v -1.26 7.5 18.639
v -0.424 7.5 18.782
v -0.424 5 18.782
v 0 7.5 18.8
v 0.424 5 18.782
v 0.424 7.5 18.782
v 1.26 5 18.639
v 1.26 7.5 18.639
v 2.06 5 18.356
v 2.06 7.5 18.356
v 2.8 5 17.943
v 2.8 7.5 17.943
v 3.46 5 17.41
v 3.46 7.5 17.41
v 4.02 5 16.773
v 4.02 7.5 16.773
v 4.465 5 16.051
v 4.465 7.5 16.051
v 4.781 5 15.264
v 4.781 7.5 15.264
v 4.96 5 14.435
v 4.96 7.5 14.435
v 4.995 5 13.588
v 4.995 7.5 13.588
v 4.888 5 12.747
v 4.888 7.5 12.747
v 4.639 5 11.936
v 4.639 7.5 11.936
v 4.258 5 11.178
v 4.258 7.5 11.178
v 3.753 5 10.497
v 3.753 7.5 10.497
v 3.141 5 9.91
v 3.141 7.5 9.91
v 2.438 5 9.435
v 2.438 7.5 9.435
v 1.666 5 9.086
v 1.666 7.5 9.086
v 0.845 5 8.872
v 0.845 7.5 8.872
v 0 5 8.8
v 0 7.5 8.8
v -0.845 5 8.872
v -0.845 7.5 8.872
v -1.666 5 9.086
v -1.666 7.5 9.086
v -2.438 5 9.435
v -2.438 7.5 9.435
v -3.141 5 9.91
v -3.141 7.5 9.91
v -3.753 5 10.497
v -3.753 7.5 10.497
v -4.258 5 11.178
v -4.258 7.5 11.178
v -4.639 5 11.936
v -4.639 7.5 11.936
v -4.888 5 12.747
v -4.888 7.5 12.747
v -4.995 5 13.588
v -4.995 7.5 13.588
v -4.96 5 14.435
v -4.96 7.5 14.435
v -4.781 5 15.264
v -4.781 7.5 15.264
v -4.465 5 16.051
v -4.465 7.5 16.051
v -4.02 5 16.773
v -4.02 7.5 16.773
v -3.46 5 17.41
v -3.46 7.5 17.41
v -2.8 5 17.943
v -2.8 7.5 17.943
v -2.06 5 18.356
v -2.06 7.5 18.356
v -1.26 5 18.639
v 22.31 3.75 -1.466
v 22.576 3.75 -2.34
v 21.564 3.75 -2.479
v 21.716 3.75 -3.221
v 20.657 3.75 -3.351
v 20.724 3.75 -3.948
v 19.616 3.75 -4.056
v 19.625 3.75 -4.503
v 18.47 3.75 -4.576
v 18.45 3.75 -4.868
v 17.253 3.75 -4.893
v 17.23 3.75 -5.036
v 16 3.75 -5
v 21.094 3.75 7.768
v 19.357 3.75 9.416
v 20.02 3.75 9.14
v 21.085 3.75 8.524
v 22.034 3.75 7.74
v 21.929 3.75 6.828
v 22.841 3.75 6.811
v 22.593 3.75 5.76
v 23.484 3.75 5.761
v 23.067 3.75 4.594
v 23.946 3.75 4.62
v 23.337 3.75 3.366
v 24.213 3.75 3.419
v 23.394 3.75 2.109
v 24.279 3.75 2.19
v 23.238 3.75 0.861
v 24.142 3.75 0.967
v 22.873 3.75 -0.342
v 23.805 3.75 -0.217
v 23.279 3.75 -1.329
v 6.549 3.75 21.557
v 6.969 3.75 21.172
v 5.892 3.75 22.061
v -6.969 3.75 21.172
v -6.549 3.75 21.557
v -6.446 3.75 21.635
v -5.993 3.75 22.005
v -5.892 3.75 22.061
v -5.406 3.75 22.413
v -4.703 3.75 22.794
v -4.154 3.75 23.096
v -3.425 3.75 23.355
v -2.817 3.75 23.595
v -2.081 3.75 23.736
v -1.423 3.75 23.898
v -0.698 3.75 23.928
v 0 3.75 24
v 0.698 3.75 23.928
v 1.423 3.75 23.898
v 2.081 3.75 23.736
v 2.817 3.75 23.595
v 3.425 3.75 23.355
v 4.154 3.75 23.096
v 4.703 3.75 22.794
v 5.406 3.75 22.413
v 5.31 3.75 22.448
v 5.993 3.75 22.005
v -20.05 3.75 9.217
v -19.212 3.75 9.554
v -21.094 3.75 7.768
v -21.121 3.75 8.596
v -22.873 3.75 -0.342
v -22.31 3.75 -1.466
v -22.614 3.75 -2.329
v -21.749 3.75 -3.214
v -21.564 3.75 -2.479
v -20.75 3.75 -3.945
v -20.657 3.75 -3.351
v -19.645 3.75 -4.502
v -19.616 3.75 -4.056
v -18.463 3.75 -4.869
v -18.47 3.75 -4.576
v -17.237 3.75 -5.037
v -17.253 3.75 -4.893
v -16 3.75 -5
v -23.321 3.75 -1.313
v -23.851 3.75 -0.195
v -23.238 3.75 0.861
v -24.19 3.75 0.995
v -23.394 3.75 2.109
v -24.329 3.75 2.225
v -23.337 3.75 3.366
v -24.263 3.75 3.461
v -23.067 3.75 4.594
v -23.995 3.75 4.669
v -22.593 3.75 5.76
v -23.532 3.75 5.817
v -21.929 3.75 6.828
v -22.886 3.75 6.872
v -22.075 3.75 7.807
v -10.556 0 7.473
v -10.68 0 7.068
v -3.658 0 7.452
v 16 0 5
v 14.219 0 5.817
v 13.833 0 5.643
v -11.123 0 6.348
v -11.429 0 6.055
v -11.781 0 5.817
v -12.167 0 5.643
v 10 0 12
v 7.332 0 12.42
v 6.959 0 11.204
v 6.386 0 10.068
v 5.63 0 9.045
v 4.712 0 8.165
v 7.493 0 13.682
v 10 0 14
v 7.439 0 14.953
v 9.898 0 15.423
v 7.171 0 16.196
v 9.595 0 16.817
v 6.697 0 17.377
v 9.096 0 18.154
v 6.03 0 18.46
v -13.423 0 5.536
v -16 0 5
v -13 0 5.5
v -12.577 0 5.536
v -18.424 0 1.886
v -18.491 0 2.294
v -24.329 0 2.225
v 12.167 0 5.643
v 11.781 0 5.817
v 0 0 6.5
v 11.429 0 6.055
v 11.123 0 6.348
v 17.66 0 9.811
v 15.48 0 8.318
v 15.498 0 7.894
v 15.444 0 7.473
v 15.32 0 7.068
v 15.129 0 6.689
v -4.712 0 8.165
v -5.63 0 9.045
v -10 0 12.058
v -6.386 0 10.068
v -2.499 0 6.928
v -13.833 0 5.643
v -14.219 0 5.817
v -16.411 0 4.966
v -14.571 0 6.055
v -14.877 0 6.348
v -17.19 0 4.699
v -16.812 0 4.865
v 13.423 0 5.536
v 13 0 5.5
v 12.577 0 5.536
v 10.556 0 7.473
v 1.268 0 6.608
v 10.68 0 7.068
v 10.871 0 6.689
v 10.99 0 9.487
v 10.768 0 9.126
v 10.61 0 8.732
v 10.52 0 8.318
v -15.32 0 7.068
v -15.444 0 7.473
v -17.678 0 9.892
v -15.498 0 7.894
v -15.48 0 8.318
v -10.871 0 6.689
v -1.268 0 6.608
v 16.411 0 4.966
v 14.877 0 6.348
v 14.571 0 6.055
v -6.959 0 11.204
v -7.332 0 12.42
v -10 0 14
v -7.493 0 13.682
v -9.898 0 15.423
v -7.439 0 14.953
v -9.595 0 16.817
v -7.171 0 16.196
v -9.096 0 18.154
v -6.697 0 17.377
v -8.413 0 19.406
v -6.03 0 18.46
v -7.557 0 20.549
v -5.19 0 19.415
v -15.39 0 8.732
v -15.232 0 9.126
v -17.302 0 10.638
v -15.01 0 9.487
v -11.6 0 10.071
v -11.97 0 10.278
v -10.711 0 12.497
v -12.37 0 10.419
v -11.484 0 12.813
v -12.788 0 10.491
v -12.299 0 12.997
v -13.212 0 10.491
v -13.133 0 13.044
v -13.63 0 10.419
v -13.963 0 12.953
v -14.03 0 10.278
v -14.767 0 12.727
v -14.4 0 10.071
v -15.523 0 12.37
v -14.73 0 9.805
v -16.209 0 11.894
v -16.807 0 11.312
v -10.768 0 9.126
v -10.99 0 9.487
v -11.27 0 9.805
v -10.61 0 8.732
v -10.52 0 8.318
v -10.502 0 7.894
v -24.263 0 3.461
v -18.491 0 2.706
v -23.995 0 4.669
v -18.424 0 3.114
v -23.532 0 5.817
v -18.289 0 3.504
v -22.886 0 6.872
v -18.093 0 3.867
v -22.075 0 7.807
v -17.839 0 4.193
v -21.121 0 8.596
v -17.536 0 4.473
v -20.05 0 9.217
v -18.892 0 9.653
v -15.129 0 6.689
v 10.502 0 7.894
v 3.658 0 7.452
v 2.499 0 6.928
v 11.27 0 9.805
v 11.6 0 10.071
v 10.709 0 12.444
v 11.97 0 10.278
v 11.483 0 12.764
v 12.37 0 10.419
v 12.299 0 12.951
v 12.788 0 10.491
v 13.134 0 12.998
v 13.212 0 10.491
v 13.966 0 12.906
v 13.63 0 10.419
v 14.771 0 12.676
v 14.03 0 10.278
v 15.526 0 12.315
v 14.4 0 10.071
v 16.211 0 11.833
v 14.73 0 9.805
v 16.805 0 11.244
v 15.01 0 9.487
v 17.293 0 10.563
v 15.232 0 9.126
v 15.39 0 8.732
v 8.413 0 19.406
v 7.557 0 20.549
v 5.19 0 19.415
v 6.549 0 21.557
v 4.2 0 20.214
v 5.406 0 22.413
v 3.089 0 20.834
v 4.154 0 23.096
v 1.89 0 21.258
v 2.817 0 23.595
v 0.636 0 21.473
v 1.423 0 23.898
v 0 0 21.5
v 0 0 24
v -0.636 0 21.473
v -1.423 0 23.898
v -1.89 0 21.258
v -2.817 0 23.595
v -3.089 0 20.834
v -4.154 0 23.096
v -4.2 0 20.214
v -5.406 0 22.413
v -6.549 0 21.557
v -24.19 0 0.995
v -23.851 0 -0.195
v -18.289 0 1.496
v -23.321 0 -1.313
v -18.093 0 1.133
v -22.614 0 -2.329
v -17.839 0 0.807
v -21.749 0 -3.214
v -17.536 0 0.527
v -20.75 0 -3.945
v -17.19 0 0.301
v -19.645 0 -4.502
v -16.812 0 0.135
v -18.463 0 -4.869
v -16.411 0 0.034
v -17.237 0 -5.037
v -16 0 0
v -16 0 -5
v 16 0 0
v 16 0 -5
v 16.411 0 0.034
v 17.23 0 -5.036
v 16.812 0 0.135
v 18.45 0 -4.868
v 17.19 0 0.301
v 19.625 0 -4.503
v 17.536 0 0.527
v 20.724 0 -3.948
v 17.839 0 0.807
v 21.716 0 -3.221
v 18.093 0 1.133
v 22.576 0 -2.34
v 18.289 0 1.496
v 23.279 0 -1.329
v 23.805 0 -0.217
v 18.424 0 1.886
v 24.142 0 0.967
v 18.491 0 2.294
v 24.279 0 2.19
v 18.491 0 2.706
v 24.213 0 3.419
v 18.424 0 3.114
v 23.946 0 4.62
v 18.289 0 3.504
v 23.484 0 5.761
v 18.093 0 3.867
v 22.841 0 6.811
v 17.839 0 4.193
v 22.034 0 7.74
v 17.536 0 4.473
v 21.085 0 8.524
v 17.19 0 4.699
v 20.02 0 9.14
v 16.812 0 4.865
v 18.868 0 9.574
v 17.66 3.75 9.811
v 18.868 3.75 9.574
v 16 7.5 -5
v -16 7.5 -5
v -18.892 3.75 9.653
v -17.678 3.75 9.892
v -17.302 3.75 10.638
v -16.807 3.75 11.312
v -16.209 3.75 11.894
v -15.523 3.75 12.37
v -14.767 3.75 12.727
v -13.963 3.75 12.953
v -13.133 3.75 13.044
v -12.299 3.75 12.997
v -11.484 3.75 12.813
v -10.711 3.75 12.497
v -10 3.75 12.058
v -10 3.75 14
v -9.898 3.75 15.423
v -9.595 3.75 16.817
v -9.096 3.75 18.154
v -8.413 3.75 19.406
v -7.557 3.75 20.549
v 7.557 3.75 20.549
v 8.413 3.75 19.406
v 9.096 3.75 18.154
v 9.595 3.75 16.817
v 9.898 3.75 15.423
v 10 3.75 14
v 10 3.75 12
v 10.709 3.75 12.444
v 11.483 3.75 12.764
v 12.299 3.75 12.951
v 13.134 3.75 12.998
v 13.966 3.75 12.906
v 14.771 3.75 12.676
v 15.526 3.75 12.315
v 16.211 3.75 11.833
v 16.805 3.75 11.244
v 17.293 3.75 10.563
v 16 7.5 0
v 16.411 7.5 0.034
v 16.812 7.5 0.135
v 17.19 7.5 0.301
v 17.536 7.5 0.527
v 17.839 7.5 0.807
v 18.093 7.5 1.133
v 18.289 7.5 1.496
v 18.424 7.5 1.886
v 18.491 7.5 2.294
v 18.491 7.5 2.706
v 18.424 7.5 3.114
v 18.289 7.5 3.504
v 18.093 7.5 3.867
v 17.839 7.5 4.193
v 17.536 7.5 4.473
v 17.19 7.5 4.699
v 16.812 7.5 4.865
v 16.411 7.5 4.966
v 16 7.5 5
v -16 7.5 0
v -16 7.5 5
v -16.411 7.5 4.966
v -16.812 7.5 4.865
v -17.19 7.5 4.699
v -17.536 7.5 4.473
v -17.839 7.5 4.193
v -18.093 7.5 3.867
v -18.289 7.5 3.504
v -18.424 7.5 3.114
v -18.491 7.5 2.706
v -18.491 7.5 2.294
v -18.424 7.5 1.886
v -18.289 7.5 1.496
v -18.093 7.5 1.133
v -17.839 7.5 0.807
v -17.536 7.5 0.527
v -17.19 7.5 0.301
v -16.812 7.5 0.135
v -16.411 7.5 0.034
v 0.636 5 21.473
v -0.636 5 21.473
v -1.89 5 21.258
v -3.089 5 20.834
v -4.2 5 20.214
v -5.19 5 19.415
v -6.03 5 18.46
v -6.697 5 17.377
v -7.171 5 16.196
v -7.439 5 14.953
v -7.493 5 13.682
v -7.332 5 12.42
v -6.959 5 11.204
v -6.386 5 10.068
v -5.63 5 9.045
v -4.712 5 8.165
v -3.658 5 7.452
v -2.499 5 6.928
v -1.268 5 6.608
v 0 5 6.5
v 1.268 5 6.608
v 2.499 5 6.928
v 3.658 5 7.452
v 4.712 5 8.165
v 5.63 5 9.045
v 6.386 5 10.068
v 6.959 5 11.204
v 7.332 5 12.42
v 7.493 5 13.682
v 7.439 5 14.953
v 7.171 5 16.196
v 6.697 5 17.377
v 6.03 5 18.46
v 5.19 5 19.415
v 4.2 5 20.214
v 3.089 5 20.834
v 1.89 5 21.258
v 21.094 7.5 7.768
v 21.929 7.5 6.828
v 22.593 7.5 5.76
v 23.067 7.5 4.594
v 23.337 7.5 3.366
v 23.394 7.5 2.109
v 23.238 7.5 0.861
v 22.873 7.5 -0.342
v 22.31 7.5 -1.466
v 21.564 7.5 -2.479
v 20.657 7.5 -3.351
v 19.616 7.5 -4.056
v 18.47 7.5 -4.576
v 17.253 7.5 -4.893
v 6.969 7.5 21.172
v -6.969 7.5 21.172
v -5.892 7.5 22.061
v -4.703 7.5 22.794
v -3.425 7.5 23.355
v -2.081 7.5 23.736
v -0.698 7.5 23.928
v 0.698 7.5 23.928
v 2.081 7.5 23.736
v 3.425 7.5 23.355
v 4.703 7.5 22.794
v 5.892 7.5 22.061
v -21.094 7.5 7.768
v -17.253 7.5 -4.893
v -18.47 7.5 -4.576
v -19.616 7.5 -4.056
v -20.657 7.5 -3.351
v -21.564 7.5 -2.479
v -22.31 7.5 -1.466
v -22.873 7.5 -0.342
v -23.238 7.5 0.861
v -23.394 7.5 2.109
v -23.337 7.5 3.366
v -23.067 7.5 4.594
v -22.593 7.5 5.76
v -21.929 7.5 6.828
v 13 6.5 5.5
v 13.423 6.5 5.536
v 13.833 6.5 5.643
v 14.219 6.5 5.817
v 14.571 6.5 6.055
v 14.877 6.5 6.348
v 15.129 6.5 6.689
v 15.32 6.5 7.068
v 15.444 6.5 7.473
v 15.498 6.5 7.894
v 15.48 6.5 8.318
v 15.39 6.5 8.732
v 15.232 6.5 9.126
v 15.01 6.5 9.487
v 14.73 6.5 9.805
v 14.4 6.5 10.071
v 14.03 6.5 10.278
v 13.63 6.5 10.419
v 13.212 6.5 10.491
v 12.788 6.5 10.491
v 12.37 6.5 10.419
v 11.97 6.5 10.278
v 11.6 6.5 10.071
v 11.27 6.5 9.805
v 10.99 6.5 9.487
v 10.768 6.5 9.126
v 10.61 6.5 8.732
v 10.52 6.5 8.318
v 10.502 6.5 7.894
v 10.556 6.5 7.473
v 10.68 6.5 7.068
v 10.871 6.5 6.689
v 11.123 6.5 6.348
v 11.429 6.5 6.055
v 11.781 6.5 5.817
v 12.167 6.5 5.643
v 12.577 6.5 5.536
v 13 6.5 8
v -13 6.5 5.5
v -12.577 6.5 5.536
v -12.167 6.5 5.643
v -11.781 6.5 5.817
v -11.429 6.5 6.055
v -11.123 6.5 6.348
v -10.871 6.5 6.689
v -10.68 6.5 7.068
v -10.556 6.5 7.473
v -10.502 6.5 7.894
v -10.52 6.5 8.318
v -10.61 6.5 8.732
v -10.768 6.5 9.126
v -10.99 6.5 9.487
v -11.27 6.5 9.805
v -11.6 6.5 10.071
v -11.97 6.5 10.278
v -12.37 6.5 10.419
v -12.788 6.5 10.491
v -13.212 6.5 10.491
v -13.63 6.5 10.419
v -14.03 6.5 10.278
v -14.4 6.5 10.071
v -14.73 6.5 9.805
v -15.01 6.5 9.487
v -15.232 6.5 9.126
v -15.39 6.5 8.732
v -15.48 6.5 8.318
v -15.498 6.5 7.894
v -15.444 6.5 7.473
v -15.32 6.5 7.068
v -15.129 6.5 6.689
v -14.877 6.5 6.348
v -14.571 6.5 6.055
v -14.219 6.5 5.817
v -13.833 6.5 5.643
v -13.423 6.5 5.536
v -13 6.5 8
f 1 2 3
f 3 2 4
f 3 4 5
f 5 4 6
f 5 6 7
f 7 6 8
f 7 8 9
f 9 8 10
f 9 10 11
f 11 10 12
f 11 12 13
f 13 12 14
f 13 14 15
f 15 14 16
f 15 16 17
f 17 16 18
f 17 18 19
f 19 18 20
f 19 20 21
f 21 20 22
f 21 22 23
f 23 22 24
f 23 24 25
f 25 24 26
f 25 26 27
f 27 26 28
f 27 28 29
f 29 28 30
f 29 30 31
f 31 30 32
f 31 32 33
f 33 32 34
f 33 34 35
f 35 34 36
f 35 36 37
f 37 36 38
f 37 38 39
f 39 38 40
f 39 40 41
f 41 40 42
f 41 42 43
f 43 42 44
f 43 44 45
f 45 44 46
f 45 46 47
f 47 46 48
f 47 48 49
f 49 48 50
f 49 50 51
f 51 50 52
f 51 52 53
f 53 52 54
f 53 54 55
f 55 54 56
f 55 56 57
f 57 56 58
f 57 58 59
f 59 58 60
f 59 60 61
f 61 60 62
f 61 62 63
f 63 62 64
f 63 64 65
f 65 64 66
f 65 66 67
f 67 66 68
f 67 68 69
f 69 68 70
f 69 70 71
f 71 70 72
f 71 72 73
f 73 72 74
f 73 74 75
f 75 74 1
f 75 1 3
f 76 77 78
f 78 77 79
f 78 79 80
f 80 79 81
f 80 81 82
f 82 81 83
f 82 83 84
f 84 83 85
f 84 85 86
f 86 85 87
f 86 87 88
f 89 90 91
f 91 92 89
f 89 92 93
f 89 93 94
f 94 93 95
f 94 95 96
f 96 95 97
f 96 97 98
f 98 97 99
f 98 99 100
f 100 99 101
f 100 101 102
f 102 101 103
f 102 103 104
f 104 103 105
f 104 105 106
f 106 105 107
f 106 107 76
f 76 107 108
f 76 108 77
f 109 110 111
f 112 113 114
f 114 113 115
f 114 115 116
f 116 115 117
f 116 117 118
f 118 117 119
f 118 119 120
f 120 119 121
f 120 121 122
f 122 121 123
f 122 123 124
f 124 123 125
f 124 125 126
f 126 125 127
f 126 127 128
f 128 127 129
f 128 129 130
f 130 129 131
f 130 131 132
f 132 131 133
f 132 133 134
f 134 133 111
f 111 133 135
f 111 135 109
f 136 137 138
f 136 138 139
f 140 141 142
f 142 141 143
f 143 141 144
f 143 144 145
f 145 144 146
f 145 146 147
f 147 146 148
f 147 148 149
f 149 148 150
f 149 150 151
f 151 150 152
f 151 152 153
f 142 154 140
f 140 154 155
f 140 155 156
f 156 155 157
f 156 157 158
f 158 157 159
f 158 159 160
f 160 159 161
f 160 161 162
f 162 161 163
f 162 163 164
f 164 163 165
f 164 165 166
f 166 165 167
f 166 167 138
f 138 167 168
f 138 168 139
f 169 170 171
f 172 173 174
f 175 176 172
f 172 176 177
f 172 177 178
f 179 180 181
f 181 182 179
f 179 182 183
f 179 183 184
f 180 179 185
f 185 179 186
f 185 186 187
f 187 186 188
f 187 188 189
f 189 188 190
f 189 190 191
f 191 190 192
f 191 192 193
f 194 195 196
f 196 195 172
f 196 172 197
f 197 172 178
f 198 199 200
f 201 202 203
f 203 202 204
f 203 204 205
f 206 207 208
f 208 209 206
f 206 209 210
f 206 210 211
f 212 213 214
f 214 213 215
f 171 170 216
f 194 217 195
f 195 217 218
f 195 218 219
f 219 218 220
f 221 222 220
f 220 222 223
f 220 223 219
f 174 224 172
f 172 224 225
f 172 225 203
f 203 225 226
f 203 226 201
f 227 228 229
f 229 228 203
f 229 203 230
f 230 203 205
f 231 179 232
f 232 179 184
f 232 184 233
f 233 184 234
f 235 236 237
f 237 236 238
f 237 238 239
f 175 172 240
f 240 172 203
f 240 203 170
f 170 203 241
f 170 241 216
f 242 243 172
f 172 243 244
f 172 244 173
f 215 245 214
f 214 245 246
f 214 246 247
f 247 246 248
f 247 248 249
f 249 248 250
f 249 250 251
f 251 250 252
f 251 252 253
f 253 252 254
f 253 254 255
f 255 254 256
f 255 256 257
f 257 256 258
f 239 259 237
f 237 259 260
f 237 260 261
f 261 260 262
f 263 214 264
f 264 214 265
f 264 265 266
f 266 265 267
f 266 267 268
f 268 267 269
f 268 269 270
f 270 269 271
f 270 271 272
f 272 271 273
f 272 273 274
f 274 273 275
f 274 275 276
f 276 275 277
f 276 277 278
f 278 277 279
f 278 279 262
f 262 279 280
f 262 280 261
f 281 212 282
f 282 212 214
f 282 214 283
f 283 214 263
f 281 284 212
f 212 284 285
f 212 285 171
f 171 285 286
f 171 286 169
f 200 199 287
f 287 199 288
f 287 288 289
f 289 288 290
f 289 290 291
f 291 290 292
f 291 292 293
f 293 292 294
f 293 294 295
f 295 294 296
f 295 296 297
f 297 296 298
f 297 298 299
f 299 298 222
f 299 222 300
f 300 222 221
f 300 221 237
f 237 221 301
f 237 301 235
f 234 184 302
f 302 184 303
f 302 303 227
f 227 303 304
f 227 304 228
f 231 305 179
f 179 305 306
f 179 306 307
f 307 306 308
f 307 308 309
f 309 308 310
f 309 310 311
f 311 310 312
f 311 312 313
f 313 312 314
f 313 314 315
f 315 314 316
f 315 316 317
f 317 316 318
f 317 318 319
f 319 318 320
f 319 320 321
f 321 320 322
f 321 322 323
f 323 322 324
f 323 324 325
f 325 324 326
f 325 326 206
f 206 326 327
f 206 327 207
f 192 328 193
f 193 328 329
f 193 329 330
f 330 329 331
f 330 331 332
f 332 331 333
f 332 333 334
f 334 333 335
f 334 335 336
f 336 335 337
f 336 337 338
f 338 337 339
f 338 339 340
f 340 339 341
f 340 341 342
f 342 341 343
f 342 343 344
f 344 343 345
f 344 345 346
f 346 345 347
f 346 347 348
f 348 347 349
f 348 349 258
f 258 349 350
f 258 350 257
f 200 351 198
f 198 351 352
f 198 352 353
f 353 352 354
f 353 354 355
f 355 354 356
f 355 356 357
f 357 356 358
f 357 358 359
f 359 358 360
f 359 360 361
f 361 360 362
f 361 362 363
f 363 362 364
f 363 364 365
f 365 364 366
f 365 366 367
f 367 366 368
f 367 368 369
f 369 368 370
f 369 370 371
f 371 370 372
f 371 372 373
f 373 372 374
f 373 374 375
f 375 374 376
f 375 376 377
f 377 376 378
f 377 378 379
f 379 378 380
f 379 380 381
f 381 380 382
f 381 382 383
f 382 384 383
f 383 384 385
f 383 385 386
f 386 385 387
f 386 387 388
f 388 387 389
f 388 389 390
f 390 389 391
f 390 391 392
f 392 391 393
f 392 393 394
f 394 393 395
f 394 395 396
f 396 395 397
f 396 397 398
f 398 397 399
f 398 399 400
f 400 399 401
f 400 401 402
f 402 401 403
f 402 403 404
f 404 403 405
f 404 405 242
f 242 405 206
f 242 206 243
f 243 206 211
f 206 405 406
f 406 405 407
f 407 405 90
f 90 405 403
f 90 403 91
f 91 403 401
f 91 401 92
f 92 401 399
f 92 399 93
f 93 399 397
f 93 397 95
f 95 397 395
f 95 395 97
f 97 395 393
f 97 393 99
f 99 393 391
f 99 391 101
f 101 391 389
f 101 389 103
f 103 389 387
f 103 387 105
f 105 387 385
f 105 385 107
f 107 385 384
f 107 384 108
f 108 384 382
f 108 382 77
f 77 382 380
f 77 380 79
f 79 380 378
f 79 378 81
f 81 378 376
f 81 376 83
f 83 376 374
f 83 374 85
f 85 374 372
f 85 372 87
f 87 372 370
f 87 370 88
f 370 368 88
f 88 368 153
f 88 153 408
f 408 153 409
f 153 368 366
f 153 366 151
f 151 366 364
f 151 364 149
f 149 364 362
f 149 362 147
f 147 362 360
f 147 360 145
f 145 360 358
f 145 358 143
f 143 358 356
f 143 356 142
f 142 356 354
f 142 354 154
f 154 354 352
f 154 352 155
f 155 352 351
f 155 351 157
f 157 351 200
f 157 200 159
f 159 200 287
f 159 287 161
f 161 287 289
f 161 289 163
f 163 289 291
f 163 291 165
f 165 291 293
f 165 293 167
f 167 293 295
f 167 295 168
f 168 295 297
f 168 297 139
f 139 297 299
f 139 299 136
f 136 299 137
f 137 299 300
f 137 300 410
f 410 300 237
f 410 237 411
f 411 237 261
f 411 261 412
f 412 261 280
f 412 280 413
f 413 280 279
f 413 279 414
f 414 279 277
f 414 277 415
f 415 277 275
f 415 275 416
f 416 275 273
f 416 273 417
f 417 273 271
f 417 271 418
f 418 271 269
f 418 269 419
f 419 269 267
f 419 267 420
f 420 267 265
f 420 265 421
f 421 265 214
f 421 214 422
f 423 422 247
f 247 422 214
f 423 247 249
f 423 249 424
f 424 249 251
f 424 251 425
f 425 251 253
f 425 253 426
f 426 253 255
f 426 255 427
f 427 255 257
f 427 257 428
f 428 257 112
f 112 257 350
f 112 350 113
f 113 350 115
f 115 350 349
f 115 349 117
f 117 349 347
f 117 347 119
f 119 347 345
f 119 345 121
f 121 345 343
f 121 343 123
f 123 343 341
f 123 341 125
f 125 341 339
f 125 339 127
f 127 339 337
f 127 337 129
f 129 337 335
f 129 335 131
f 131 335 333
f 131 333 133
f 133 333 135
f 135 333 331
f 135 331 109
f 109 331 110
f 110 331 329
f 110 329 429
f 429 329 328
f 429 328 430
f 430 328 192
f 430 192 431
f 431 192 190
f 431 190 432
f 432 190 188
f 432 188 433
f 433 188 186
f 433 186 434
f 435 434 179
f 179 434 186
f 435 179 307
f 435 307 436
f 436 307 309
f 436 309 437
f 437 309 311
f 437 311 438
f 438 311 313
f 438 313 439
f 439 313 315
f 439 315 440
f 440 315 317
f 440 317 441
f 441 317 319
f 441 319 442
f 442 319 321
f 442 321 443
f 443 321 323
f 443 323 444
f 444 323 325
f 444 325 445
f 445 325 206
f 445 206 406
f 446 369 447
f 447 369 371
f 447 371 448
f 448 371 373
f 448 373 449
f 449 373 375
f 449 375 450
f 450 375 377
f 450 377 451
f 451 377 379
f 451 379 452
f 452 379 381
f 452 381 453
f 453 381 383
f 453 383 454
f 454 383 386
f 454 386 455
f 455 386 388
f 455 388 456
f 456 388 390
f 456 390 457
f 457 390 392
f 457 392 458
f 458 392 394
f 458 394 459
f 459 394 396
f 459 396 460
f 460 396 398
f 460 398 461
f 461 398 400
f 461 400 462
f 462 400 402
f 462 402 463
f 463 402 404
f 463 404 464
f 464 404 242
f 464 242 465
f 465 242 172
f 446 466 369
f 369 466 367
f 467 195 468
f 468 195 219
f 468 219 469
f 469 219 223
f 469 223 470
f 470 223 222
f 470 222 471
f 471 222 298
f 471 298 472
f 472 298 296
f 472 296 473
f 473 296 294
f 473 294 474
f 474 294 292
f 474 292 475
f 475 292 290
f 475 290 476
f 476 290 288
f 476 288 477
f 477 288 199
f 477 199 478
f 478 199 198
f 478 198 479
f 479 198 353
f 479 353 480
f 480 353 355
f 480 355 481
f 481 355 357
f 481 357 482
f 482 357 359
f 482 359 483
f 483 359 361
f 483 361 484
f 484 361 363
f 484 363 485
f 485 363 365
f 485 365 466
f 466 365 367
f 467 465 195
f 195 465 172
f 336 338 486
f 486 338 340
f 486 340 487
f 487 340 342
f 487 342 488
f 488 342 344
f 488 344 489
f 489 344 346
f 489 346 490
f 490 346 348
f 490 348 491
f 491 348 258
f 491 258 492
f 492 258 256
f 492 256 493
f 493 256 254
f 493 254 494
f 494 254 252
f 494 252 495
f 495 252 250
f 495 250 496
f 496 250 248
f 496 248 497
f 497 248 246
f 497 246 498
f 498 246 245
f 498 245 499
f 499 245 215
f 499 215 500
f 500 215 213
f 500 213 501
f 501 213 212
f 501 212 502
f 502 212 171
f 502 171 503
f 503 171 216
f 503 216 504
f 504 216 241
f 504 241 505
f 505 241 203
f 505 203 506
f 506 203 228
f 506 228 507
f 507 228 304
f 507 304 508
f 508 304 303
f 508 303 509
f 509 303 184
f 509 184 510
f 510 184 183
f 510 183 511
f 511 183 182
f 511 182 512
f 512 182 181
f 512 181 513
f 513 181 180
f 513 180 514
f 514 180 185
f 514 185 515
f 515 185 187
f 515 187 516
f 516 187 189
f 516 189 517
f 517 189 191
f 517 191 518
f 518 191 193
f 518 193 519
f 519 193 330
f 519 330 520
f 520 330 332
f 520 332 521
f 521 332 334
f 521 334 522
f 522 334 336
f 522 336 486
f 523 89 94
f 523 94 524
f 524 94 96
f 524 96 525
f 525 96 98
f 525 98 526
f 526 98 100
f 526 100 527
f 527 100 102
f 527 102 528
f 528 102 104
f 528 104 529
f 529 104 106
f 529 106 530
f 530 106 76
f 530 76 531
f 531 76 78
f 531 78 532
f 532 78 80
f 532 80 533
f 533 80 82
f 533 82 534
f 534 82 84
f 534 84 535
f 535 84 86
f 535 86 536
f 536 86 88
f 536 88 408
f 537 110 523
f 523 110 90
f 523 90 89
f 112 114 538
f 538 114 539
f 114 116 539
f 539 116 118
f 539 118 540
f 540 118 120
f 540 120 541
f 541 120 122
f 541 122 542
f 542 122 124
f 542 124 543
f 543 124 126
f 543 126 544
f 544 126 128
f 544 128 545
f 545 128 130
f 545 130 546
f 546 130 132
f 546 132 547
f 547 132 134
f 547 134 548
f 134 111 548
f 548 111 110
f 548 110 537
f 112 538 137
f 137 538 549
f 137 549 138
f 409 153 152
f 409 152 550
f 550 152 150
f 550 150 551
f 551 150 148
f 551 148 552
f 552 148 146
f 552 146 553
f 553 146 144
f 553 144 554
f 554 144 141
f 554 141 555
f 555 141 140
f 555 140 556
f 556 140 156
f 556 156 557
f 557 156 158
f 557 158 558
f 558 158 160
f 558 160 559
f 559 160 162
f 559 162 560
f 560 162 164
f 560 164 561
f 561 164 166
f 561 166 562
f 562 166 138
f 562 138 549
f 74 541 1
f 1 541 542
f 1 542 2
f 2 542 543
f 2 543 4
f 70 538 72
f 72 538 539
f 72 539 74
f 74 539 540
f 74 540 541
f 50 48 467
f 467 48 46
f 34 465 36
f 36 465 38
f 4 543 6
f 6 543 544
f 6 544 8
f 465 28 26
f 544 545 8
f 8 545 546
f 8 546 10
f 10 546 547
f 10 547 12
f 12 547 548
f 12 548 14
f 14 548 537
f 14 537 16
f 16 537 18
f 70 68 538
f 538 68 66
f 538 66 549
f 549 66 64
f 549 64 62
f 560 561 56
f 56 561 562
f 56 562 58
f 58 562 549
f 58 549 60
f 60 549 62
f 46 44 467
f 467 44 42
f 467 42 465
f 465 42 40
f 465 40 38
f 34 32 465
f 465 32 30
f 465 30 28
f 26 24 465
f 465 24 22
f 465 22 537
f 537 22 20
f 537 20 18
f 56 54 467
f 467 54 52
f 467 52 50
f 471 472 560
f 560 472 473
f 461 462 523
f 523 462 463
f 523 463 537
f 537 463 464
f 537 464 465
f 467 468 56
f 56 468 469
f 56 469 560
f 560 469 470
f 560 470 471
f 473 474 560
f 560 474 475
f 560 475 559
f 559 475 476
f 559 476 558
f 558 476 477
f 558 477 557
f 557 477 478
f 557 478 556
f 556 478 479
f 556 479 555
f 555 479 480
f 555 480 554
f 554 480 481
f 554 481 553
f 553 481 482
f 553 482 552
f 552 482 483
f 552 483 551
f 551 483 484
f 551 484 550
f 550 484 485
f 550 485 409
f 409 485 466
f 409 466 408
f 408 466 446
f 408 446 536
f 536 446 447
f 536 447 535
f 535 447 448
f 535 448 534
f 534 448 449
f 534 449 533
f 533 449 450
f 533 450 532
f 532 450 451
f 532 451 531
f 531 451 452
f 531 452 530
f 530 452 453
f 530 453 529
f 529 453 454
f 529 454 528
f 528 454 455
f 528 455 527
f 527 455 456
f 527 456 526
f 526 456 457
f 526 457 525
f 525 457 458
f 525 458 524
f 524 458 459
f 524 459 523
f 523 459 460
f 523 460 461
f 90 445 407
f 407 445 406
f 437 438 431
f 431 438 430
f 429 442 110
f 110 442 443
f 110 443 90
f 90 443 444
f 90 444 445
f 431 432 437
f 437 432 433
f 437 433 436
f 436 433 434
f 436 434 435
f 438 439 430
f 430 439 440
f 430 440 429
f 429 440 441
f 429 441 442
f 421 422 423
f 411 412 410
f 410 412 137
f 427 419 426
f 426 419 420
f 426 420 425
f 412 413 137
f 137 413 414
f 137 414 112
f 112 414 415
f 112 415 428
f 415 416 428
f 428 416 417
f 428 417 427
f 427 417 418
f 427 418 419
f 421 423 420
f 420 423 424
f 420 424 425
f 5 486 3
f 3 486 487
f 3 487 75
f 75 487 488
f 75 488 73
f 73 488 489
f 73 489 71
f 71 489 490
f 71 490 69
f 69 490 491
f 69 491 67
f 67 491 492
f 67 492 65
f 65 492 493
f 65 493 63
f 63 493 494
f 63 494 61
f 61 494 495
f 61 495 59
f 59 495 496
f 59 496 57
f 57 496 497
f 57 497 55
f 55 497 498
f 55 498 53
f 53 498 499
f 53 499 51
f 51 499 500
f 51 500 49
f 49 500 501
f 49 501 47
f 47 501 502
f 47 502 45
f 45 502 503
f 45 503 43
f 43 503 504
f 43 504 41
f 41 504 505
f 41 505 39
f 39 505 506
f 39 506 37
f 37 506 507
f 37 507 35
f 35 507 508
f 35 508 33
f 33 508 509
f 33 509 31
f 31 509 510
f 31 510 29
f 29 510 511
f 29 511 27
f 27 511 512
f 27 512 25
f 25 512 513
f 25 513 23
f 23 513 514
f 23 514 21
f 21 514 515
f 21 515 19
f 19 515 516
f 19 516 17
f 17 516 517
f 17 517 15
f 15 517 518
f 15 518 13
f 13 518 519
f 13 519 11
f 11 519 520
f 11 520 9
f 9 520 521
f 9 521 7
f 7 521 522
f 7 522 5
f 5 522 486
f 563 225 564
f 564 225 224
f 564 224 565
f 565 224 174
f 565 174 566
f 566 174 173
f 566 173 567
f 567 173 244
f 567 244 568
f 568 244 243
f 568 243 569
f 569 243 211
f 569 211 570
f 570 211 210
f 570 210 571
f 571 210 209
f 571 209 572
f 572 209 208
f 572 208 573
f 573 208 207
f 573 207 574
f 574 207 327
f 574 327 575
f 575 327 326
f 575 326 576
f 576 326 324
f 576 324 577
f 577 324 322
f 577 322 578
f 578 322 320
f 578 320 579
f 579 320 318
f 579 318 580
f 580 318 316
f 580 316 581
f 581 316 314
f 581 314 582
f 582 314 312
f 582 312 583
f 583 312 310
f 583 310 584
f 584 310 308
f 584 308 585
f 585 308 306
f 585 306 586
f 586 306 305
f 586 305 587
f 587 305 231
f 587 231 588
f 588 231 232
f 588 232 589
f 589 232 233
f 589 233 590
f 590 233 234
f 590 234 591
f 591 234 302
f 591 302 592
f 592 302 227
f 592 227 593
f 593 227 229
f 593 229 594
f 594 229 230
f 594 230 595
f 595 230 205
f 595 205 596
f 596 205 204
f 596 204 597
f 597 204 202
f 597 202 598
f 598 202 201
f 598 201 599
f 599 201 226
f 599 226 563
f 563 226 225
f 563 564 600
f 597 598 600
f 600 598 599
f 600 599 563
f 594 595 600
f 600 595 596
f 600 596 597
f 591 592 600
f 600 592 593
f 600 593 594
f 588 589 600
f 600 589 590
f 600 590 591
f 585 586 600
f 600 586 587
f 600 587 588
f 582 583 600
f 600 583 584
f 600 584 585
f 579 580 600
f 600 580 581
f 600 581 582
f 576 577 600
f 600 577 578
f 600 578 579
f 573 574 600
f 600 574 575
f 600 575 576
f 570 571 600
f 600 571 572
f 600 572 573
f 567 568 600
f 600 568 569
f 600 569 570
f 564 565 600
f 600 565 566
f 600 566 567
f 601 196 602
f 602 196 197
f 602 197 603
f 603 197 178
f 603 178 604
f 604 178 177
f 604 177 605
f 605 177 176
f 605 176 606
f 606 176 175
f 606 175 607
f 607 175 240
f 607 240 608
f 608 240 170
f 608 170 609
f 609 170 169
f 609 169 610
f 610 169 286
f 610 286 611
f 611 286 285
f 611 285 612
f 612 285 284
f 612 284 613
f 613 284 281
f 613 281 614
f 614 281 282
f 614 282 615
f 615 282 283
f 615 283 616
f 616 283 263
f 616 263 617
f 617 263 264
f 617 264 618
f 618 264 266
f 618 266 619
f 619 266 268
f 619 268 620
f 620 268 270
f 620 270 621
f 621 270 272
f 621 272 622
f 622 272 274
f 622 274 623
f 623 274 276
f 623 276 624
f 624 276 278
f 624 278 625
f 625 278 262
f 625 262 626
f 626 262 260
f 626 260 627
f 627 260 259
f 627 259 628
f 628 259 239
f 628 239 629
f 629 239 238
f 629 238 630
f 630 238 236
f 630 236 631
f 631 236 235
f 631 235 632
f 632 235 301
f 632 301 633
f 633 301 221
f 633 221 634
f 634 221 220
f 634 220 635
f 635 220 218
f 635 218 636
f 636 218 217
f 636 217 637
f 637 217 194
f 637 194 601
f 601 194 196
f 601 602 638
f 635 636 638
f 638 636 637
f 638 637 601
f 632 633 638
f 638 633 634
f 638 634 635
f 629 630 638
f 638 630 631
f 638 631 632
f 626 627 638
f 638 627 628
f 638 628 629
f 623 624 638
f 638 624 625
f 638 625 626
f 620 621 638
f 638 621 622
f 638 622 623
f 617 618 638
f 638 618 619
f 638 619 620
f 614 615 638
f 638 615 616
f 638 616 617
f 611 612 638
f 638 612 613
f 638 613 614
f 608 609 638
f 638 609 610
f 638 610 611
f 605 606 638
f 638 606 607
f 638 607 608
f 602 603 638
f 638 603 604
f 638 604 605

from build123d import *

# Parameters (mm, degrees)
SZKIC2_R                    = 7.5
SZKIC2_R_2                  = 2.4
DODANIE_WYCI_GNI_CIE1_DEPTH = 3.75
SZKIC3_R                    = 5
DODANIE_WYCI_GNI_CIE2_DEPTH = 3.75
SZKIC9_R                    = 7.5
WYTNIJ_WYCI_GNI_CIE3_DEPTH  = 5
SZKIC10_R                   = 2.5
WYTNIJ_WYCI_GNI_CIE4_DEPTH  = 6.5


with BuildPart() as part:
    # Szkic2 → Dodanie-wyciągnięcie1 (new body)
    with BuildSketch(Plane(origin=(0, 0, 0), x_dir=(1, 0, 0), z_dir=(0, 1, 0))):
        with BuildLine():
            Line((-16, 5), (16, 5))
            ThreePointArc((16, 5), (24.235849057, -1.575471698), (17.660377358, -9.811320755))
            ThreePointArc((17.660377358, -9.811320755), (14.373605639, -12.807619738), (10, -12))
            Line((10, -12), (10, -14))
            ThreePointArc((10, -14), (0, -24), (-10, -14))
            Line((-10, -14), (-10, -12.057627201))
            ThreePointArc((-10, -12.057627201), (-14.369651741, -12.856788302), (-17.67794965, -9.892386213))
            ThreePointArc((-17.67794965, -9.892386213), (-24.285167931, -1.607218282), (-16, 5))
        make_face()
        with Locations(Location((0, -14, 0), (0, 0, 270))):
            Circle(SZKIC2_R, mode=Mode.SUBTRACT)
        with Locations(Location((-13, -8, 0), (0, 0, 270))):
            Circle(SZKIC2_R_2, mode=Mode.SUBTRACT)
        with Locations(Location((13, -8, 0), (0, 0, 270))):
            Circle(SZKIC2_R_2, mode=Mode.SUBTRACT)
        with BuildLine():
            Line((-16, 0), (16, 0))
            ThreePointArc((16, 0), (18.5, -2.5), (16, -5))
            Line((16, -5), (-16, -5))
            ThreePointArc((-16, -5), (-18.5, -2.5), (-16, 0))
        make_face(mode=Mode.SUBTRACT)
    extrude(amount=DODANIE_WYCI_GNI_CIE1_DEPTH)

    # Szkic3 → Dodanie-wyciągnięcie2 (add)
    with BuildSketch(Plane(origin=(0, 3.75, 0), x_dir=(1, 0, 0), z_dir=(0, 1, 0))):
        with BuildLine():
            Line((-16, 5), (16, 5))
            ThreePointArc((16, 5), (22.873192437, 0.342120663), (21.093817027, -7.76777683))
            Line((21.093817027, -7.76777683), (6.968542539, -21.17212764))
            ThreePointArc((6.968542539, -21.17212764), (0, -23.952289066), (-6.968542539, -21.17212764))
            Line((-6.968542539, -21.17212764), (-21.093817027, -7.76777683))
            ThreePointArc((-21.093817027, -7.76777683), (-22.873192437, 0.342120663), (-16, 5))
        make_face()
        with Locations(Location((0, -13.8, 0), (0, 0, 270))):
            Circle(SZKIC3_R, mode=Mode.SUBTRACT)
        with BuildLine():
            Line((-16, 0), (16, 0))
            ThreePointArc((16, 0), (18.5, -2.5), (16, -5))
            Line((16, -5), (-16, -5))
            ThreePointArc((-16, -5), (-18.5, -2.5), (-16, 0))
        make_face(mode=Mode.SUBTRACT)
    extrude(amount=DODANIE_WYCI_GNI_CIE2_DEPTH)

    # Szkic9 → Wytnij-wyciągnięcie3 (cut)
    with BuildSketch(Plane.XZ):
        with Locations(Location((0, 14, 0), (0, 0, 270))):
            Circle(SZKIC9_R)
    extrude(amount=-WYTNIJ_WYCI_GNI_CIE3_DEPTH, mode=Mode.SUBTRACT)

    # Szkic10 → Wytnij-wyciągnięcie4 (cut)
    with BuildSketch(Plane.XZ):
        with Locations(Location((-13, 8, 0), (0, 0, 270))):
            Circle(SZKIC10_R)
        with Locations(Location((13, 8, 0), (0, 0, 270))):
            Circle(SZKIC10_R)
    extrude(amount=-WYTNIJ_WYCI_GNI_CIE4_DEPTH, mode=Mode.SUBTRACT)


solid = part.part
